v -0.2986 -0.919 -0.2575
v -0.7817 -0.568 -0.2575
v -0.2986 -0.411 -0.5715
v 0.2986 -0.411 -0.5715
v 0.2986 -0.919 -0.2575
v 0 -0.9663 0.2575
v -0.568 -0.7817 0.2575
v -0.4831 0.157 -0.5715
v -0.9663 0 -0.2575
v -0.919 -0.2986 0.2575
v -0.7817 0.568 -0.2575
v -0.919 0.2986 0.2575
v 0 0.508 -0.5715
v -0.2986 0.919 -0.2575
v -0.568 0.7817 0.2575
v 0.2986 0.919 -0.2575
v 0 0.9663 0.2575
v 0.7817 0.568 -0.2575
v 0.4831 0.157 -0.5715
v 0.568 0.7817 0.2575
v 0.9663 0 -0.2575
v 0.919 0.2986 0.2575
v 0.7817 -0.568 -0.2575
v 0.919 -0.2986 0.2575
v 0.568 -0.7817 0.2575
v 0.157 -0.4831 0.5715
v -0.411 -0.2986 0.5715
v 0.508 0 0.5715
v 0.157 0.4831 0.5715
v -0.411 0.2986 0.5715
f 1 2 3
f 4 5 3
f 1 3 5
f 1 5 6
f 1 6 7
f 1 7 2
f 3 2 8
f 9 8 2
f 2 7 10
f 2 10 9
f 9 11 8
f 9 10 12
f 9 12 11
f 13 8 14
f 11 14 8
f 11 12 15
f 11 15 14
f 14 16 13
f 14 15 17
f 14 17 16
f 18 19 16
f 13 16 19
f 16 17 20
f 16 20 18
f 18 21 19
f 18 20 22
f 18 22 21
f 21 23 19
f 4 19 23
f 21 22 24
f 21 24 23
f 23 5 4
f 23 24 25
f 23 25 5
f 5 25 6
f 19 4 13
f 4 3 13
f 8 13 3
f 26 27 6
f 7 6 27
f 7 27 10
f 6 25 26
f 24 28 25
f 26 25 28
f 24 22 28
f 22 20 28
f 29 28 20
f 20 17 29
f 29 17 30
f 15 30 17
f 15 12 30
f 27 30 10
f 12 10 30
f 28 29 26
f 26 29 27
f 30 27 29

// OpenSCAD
polyhedron( points = [[-0.298595749133766, -0.918983223672539, -0.257508079916913], [-0.781733821472574, -0.567962867166839, -0.257508079916913], [-0.966276144155999, 3.56277614717792e-10, -0.257508079916913], [-0.781733822285721, 0.56796286786282, -0.257508079916913], [-0.298595750449467, 0.918983224325136, -0.257508079916913], [0.298595749180602, 0.918983224325142, -0.257508079916913], [0.781733821550927, 0.56796286786282, -0.257508079916913], [0.966276144285354, 3.56277614717792e-10, -0.257508079916913], [0.781733822466081, -0.567962867166836, -0.257508079916913], [0.298595750661342, -0.918983223672539, -0.257508079916913], [-0.298595749106954, -0.410981790945549, -0.571470230800908], [-0.483138071390496, 0.156981075812084, -0.571470231129649], [8.24882960530389e-10, 0.508001432073051, -0.571470231129649], [0.48313807295583, 0.156981075695876, -0.57147023112965], [0.298595750488513, -0.410981791069758, -0.571470230724142], [-0.567962866590692, -0.781733821956717, 0.257508080236592], [7.79268272330305e-10, -0.966276144344879, 0.257508080236592], [0.567962867701279, -0.781733822270935, 0.257508080150366], [0.918983223370973, -0.298595750400402, 0.257508080010849], [0.918983222672999, 0.298595749081467, 0.257508079871333], [0.567962865873968, 0.781733821177713, 0.257508079785107], [-1.47941751565099e-09, 0.966276143616877, 0.257508079785107], [-0.567962868418006, 0.781733821593926, 0.257508079871333], [-0.918983224131075, 0.298595749754914, 0.257508080010849], [-0.91898322348673, -0.298595749726949, 0.257508080150366], [-0.410981790925422, -0.298595749835733, 0.571470230713994], [0.156981075819443, -0.483138072256087, 0.57147023104273], [0.508001431428173, -4.38506552268501e-10, 0.571470230903214], [0.156981074660659, 0.483138071583401, 0.571470230816991], [-0.410981791693979, 0.298595749446488, 0.571470230497709]], faces = [[0, 1, 10], [0, 10, 14, 9], [0, 9, 16], [0, 16, 15], [0, 15, 1], [1, 2, 11, 10], [1, 15, 24], [1, 24, 2], [2, 3, 11], [2, 24, 23], [2, 23, 3], [3, 4, 12, 11], [3, 23, 22], [3, 22, 4], [4, 5, 12], [4, 22, 21], [4, 21, 5], [5, 6, 13, 12], [5, 21, 20], [5, 20, 6], [6, 7, 13], [6, 20, 19], [6, 19, 7], [7, 8, 14, 13], [7, 19, 18], [7, 18, 8], [8, 9, 14], [8, 18, 17], [8, 17, 9], [9, 17, 16], [10, 11, 12, 13, 14], [15, 16, 26, 25], [15, 25, 24], [16, 17, 26], [17, 18, 27, 26], [18, 19, 27], [19, 20, 28, 27], [20, 21, 28], [21, 22, 29, 28], [22, 23, 29], [23, 24, 25, 29], [25, 26, 27, 28, 29]]);
